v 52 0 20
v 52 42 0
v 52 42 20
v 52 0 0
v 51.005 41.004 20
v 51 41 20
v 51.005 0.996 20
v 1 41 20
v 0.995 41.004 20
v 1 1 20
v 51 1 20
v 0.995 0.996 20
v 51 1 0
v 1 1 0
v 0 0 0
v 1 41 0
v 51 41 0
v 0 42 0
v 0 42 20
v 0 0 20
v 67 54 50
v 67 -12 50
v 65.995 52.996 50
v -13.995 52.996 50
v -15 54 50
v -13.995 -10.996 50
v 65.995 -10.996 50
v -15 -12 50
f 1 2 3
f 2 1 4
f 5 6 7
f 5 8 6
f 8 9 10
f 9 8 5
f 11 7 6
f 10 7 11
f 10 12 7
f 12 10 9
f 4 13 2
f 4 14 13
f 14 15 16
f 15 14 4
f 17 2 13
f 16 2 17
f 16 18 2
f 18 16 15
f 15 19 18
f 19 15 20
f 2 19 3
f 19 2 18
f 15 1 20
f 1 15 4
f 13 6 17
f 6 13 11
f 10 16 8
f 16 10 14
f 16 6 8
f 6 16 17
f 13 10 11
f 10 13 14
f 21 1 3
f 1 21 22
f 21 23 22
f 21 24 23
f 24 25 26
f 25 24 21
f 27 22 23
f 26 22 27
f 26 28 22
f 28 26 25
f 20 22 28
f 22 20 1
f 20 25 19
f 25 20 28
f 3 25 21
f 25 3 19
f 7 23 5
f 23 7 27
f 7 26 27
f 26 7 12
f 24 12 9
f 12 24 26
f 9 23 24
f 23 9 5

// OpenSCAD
base_w = 50; // width of collar, mm
base_h = 40; // height of collar, mm
base_d = 20;
diffuse_w = 80;
diffuse_h = 64;
diffuse_d = 30;
diffuse_rad = 300;
w_diff = (diffuse_w-base_w);
h_diff = (diffuse_h-base_h);
total_d = base_d + diffuse_d;
bx = -0.5*w_diff;
by = -0.5*h_diff;
wall = 1;
fudge = 0.01;

union() {
    difference() {
        cube([base_w+2*wall, base_h+2*wall, base_d]);
        translate([wall, wall, -fudge])
            cube([base_w, base_h, base_d+2*fudge]);
    }
    //translate([-(diffuse_w-base_w)/2, -(diffuse_h-base_h)/2, base_d])
    //    cube([diffuse_w, diffuse_h, diffuse_d]);
    difference() {
        polyhedron([[0,                     0,                     base_d],
                    [base_w+2*wall,         0,                     base_d],
                    [base_w+2*wall,         base_h+2*wall,         base_d],
                    [0,                     base_h+2*wall,         base_d],
                    [bx,                    by,                    total_d],
                    [bx+diffuse_w+2*wall,   by,                    total_d],
                    [bx+diffuse_w+2*wall,   by+diffuse_h+2*wall,   total_d],
                    [bx,                    by+diffuse_h+2*wall,   total_d]],
                   [[0,1,2,3], [4,5,1,0], [7,6,5,4],
                    [5,6,2,1], [6,7,3,2], [7,4,0,3]]);
        translate([wall, wall, -fudge])
        polyhedron([[0,             0,              base_d],
                    [base_w,        0,              base_d],
                    [base_w,        base_h,         base_d],
                    [0,             base_h,         base_d],
                    [bx,            by,             total_d+2*fudge],
                    [bx+diffuse_w,  by,             total_d+2*fudge],
                    [bx+diffuse_w,  by+diffuse_h,   total_d+2*fudge],
                    [bx,            by+diffuse_h,   total_d+2*fudge]],
                   [[0,1,2,3], [4,5,1,0], [7,6,5,4],
                    [5,6,2,1], [6,7,3,2], [7,4,0,3]]);
    }

}
